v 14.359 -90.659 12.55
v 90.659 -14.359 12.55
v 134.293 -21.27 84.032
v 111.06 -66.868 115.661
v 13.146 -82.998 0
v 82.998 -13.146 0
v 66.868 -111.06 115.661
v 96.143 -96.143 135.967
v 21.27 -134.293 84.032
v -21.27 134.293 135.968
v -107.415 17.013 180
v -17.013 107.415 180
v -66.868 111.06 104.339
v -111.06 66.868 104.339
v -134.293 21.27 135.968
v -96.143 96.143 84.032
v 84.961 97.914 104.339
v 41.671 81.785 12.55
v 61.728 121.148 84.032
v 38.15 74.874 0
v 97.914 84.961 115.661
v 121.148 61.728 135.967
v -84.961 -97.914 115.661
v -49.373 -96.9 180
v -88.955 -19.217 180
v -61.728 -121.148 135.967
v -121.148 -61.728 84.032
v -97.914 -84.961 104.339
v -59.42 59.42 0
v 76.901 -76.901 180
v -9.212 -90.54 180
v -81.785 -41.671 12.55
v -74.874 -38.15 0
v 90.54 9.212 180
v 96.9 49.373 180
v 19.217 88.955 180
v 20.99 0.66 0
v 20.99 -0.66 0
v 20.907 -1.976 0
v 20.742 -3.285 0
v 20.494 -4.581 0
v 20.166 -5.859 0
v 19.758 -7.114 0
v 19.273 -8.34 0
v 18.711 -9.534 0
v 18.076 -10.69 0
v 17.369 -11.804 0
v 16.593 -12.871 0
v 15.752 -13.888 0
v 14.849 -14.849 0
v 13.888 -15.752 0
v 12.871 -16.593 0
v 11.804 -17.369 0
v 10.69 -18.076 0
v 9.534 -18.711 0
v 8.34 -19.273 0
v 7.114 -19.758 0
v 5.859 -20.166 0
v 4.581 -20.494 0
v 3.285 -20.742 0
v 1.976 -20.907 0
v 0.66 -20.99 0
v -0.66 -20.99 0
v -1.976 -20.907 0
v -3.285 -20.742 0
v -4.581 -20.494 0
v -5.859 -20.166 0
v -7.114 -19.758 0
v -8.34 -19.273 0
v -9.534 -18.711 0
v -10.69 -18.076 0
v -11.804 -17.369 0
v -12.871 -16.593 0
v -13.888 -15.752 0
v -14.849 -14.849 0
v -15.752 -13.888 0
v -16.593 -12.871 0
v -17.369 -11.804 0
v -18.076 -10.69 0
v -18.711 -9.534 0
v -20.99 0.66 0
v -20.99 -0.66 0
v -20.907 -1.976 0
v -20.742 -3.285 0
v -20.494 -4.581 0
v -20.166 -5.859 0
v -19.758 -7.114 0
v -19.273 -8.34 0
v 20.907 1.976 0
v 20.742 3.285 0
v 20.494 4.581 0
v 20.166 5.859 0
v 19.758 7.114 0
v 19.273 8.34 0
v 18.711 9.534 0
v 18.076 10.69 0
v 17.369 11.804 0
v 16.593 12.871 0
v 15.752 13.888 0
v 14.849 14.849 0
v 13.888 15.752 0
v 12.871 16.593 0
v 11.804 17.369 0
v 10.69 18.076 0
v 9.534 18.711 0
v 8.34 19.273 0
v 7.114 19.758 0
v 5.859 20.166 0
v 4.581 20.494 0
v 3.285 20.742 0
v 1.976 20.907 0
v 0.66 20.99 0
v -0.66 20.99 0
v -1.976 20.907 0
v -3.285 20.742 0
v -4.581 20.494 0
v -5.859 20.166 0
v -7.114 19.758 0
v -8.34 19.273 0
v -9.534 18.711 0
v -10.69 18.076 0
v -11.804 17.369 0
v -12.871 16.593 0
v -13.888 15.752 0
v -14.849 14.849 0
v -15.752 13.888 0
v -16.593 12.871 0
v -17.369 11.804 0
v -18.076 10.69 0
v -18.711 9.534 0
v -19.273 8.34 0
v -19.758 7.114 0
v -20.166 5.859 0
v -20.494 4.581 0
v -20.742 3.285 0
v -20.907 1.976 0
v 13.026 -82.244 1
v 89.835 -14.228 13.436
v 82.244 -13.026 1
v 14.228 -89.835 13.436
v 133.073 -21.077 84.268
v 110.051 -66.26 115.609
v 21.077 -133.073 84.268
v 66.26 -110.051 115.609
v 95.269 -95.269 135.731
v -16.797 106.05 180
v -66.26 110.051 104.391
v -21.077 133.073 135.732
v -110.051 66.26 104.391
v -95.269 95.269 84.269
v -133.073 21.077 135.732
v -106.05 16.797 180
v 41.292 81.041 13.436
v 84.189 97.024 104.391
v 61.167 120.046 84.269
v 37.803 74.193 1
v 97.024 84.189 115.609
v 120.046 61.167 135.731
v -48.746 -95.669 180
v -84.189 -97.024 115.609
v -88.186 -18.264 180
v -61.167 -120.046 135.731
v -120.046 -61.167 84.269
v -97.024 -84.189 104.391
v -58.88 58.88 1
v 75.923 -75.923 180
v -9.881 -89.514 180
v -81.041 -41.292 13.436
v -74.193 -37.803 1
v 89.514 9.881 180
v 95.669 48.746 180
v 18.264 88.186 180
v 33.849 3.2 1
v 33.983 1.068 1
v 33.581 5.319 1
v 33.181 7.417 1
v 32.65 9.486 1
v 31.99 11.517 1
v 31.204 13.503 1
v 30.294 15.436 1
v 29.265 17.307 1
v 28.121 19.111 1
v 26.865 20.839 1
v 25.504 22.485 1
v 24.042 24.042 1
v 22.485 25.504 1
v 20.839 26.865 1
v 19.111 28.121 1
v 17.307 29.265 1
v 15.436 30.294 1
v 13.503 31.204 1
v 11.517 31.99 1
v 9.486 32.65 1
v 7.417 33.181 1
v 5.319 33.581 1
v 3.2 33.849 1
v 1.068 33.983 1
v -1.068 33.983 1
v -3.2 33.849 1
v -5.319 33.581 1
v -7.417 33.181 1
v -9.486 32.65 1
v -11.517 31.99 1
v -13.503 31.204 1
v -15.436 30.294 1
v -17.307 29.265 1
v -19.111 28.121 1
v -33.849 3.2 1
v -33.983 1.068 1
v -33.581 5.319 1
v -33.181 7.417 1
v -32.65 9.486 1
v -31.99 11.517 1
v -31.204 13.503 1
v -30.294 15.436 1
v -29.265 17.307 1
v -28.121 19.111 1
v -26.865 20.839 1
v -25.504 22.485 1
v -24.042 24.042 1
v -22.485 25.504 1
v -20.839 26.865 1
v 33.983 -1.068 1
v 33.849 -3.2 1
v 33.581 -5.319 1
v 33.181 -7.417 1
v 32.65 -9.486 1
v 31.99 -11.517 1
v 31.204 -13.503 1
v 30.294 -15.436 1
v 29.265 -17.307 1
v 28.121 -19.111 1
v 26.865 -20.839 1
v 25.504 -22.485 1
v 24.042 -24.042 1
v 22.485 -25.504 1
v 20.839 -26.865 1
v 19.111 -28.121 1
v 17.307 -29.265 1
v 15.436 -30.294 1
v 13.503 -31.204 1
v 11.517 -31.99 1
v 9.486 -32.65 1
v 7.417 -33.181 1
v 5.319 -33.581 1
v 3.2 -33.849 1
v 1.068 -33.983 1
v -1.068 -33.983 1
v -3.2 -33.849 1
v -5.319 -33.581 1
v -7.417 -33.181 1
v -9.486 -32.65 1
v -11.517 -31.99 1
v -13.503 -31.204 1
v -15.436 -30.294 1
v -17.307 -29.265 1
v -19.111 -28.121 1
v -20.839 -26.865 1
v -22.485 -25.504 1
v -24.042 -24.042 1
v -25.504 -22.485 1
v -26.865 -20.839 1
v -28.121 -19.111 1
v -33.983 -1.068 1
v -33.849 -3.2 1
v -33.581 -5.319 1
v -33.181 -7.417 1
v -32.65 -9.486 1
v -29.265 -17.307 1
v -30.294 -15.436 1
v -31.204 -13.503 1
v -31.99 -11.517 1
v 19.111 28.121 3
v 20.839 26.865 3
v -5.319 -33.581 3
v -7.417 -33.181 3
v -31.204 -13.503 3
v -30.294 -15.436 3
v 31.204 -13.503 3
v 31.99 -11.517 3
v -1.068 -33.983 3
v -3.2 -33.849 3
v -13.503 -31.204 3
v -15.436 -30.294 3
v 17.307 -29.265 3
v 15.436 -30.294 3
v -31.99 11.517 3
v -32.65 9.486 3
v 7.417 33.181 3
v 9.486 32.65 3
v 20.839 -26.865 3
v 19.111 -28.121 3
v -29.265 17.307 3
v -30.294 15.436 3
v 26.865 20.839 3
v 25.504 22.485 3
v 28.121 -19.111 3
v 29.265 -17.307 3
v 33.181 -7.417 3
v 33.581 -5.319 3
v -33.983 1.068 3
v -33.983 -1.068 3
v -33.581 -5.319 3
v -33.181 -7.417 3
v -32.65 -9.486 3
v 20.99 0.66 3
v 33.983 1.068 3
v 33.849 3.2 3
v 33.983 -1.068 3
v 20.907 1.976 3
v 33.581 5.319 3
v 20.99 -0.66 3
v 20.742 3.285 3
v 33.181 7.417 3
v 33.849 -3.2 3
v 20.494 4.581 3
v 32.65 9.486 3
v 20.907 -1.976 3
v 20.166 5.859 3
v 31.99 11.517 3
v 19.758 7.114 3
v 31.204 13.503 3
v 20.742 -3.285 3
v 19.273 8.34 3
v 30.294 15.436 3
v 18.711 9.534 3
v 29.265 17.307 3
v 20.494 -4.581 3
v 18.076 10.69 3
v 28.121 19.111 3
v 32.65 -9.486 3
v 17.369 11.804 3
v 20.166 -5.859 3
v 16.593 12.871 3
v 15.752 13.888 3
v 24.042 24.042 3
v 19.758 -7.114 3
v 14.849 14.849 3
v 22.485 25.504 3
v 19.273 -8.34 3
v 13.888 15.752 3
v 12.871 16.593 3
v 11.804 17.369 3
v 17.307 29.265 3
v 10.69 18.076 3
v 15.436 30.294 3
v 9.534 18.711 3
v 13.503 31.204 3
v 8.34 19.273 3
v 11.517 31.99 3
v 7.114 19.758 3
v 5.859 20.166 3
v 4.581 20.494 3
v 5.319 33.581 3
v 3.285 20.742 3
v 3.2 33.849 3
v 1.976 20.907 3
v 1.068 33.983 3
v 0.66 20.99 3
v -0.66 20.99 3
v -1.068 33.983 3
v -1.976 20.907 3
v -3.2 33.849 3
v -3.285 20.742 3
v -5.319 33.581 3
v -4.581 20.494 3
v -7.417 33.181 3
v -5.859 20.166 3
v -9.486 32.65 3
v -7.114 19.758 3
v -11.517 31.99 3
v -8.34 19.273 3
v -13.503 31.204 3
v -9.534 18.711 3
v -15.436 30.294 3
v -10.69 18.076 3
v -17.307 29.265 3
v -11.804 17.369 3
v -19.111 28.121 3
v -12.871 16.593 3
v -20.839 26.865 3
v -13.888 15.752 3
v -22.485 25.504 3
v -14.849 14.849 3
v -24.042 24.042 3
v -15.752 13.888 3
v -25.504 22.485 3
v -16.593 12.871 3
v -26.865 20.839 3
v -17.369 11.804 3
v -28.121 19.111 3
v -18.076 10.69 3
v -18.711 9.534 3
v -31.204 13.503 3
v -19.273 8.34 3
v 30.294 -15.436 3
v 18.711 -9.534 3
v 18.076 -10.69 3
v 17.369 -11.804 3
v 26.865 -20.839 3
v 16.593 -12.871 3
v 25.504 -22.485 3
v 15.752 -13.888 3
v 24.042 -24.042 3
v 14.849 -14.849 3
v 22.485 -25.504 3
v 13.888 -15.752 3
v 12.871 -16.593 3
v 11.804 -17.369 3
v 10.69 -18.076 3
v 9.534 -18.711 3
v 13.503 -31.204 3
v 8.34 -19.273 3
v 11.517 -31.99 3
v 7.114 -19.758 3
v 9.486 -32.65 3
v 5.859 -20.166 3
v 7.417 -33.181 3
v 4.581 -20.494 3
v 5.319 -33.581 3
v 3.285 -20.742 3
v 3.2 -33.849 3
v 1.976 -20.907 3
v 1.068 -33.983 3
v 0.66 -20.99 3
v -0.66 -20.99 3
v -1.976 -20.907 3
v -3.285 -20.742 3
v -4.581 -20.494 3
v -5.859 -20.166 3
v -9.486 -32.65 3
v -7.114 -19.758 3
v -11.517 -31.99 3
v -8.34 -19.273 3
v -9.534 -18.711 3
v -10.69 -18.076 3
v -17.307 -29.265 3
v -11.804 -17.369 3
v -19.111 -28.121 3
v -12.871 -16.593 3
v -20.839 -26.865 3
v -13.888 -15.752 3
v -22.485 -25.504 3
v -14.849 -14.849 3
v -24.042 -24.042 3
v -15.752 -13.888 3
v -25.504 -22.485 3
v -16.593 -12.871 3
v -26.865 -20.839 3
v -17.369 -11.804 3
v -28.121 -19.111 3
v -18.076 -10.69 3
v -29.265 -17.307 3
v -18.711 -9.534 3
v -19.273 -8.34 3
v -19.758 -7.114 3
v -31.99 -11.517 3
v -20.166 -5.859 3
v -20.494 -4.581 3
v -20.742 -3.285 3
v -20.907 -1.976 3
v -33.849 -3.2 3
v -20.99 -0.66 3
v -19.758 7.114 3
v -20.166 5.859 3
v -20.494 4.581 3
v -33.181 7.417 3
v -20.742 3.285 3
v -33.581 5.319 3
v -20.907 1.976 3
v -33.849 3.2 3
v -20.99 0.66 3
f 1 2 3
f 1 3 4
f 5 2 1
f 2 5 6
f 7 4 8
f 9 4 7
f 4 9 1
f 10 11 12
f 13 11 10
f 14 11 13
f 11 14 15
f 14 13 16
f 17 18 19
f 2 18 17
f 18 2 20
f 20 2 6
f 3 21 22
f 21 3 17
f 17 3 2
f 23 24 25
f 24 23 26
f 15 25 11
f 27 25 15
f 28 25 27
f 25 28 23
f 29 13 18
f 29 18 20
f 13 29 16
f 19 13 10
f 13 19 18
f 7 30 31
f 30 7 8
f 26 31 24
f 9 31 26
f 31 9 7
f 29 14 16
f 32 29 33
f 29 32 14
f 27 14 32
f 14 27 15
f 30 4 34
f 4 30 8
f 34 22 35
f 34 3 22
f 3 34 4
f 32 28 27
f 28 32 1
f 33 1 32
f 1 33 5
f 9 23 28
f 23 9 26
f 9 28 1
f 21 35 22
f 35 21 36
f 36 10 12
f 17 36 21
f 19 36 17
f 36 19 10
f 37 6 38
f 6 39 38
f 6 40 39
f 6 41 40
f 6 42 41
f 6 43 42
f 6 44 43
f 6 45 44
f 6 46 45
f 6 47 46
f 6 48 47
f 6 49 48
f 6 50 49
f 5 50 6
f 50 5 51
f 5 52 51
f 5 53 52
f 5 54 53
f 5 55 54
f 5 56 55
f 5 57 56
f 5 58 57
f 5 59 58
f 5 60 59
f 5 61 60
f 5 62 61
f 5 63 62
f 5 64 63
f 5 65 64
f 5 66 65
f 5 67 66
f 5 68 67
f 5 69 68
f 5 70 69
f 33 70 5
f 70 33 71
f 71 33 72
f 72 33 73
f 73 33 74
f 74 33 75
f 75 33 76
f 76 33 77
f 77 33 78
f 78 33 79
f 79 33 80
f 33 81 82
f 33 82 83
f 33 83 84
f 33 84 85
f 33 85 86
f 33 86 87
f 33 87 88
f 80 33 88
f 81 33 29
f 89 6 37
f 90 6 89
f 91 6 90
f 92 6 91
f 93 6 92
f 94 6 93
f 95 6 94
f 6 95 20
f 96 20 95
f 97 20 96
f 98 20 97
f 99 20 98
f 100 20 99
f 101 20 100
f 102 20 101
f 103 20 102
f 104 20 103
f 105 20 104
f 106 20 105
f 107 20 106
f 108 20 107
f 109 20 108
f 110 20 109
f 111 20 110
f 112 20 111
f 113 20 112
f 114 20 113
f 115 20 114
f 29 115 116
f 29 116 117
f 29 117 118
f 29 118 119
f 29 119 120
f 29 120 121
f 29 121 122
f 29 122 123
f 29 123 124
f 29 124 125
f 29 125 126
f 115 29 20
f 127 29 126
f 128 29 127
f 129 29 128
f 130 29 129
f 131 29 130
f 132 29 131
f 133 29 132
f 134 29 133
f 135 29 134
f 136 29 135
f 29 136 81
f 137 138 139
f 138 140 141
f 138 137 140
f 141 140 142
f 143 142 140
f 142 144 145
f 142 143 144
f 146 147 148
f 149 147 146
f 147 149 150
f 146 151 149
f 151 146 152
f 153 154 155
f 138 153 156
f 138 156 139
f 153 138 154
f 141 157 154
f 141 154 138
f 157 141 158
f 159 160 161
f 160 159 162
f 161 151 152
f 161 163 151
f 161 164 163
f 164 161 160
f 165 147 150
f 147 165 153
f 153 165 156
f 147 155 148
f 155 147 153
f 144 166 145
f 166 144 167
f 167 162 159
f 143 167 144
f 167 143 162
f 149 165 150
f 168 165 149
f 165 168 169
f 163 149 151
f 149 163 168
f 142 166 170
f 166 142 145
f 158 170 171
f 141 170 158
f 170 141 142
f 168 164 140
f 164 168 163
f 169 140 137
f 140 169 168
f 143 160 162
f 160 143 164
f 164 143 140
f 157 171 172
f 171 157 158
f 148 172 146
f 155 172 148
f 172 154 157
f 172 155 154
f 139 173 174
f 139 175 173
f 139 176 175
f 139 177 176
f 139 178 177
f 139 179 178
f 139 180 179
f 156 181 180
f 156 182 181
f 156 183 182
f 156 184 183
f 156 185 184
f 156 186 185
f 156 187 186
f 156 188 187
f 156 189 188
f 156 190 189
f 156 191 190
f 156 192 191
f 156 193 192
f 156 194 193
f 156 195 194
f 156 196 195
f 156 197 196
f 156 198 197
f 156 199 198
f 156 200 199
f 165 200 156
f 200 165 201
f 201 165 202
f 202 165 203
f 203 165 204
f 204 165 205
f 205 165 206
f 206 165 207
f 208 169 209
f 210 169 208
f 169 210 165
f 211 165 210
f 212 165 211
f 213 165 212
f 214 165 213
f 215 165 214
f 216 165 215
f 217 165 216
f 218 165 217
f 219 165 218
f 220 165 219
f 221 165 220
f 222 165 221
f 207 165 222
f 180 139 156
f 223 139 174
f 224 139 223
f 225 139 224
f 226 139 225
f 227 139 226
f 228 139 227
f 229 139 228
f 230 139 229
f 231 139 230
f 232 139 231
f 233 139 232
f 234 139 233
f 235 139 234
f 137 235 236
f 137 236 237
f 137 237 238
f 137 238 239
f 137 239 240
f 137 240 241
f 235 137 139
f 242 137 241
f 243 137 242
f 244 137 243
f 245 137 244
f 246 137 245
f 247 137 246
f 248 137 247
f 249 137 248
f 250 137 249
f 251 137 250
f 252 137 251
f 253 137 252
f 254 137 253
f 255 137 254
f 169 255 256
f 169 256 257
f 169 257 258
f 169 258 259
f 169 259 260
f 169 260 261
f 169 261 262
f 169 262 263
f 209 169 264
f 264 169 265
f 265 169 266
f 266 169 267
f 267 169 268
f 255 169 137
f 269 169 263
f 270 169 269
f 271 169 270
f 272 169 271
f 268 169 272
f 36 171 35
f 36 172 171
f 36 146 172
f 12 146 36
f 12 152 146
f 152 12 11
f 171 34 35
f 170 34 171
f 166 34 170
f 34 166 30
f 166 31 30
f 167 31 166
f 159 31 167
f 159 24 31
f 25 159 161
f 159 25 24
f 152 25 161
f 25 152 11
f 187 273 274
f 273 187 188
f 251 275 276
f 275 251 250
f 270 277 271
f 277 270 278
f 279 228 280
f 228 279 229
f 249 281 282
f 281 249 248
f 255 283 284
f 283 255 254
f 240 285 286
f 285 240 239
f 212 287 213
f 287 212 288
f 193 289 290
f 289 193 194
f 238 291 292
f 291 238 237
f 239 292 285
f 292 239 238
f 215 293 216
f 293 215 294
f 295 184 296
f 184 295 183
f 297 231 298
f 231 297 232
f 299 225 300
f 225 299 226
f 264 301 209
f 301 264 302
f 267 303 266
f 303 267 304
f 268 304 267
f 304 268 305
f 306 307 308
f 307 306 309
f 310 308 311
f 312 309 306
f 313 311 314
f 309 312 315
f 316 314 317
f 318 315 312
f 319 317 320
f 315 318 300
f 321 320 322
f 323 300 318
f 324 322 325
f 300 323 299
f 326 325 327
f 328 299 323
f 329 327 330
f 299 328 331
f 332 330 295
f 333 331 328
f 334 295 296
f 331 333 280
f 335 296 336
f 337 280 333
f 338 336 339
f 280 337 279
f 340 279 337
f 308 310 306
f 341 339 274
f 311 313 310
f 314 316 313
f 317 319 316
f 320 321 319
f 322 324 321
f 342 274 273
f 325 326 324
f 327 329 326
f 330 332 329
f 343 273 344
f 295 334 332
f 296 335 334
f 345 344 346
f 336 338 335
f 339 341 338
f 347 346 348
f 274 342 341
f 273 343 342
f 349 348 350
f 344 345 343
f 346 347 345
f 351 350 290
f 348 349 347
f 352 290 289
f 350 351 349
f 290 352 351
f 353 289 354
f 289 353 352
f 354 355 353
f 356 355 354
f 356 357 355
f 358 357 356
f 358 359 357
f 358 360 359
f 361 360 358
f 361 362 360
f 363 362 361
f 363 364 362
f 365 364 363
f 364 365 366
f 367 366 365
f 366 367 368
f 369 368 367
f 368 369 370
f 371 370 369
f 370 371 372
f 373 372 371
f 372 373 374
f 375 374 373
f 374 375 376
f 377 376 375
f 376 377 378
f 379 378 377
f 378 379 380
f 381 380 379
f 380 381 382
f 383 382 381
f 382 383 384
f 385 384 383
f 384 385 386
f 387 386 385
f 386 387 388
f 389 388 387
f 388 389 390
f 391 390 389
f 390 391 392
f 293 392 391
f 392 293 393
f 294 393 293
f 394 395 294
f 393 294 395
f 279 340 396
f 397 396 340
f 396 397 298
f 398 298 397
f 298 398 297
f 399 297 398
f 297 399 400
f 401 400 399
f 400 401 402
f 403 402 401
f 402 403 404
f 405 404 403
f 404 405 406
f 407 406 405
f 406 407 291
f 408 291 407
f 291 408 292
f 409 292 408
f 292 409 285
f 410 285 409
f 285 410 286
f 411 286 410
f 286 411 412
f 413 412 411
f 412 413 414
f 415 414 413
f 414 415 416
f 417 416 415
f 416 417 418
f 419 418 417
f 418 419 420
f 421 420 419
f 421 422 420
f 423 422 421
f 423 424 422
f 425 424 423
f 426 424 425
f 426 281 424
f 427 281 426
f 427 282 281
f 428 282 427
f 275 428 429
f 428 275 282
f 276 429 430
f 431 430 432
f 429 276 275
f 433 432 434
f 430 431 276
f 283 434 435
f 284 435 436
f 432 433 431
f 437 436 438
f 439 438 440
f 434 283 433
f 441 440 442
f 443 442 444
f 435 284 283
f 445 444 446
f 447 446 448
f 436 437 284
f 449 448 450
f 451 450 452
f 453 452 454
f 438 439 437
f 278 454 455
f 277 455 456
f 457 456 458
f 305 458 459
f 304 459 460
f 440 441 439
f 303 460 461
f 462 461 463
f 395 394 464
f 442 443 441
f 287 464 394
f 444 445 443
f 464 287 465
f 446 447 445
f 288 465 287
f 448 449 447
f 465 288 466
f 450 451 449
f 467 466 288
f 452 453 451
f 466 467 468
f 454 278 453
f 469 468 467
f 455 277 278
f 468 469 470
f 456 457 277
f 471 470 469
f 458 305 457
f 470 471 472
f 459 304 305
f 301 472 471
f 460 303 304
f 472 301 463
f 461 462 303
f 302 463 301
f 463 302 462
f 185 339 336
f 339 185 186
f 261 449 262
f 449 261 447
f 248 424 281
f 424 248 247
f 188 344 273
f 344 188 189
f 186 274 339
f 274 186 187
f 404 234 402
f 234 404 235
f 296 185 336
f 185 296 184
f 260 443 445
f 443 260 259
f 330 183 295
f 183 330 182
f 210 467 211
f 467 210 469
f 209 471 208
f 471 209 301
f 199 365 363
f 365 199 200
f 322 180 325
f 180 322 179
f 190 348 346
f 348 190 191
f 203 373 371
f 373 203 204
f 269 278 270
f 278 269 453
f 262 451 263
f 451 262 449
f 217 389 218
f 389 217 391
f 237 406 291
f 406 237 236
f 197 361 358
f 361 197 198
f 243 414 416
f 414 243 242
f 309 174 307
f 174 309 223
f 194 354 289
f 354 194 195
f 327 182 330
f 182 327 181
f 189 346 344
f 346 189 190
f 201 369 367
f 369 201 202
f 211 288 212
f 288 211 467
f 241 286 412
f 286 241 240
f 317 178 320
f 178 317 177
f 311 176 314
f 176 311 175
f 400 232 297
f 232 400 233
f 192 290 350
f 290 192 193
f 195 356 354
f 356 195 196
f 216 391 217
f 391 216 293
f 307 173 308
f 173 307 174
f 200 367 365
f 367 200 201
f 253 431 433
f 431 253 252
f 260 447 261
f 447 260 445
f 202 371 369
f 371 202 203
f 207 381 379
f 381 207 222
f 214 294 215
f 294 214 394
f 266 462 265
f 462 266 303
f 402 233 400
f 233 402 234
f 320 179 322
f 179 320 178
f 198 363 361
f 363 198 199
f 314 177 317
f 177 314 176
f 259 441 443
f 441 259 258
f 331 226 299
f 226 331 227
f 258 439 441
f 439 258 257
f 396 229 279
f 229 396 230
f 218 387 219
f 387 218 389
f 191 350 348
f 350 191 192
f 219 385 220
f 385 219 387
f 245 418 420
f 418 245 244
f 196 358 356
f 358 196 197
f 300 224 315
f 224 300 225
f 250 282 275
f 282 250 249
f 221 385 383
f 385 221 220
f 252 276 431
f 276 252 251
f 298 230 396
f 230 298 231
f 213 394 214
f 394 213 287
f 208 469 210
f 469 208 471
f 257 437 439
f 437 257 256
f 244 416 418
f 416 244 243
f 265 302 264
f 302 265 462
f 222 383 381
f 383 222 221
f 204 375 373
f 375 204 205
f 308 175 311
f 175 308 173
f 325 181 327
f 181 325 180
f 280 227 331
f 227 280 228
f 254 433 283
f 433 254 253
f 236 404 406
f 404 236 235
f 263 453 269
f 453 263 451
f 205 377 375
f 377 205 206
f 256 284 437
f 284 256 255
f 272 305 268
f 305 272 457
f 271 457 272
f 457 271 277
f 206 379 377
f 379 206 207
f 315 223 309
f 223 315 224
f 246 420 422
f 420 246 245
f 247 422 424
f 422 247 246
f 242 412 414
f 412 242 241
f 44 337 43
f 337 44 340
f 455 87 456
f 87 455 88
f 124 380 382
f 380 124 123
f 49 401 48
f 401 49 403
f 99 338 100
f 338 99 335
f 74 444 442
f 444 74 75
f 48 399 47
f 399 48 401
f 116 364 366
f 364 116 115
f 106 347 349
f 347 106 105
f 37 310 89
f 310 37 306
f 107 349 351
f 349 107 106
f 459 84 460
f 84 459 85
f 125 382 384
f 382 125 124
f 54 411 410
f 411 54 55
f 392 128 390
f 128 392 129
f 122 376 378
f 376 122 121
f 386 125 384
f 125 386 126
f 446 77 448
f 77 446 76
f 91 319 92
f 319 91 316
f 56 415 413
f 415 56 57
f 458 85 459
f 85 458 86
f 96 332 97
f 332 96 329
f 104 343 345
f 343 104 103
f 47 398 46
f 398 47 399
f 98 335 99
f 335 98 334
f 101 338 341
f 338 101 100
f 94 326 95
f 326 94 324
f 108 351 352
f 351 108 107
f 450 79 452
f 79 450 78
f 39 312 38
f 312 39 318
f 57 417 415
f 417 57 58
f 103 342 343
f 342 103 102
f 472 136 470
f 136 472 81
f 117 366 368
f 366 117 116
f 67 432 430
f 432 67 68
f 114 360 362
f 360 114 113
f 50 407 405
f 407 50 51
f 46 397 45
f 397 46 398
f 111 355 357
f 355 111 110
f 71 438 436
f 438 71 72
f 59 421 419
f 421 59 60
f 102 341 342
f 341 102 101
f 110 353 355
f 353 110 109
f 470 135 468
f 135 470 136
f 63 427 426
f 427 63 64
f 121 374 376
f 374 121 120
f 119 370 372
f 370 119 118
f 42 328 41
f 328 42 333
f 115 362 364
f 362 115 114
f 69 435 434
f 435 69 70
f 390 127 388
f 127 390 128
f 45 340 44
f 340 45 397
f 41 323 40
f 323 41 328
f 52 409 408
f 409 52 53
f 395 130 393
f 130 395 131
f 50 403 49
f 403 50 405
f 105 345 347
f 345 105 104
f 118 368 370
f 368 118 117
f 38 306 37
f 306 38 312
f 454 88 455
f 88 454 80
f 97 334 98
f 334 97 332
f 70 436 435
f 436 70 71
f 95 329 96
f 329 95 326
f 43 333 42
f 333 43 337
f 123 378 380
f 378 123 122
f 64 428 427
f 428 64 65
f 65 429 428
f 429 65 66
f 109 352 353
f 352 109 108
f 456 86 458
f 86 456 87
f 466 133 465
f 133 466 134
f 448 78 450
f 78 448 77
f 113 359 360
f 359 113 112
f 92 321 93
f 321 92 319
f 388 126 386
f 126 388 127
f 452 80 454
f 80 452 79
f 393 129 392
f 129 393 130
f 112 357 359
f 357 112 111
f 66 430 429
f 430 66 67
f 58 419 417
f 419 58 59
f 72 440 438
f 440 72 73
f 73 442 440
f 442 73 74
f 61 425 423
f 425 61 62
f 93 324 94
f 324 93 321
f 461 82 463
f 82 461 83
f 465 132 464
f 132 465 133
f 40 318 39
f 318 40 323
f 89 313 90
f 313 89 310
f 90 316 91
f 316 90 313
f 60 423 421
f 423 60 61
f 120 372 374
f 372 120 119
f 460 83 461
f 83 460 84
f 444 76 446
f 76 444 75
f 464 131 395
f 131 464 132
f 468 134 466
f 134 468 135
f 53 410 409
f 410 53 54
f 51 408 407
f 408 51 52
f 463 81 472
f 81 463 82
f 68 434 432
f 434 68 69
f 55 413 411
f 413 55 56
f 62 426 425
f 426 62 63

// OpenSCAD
/*
 * Customizable Lamp Shade - https://www.thingiverse.com/thing:2372190
 * by Dennis Hofmann - https://www.thingiverse.com/mightynozzle/about
 * created 2017-06-08
 * version v1.0
 *
 * This work is licensed under the Creative Commons - Attribution - Non-Commercial license.
 * https://creativecommons.org/licenses/by-nc/3.0/
*/


 // Parameter Section//
//------------------//

// choose the shape of the lamp shade
lamp_shape = "dodecahedron"; //[simple,sphere,flower,dodecahedron]

// [Simple, sphere and flower shape] Resolution of round shapes. You can also use this value as the number of edges of the simple shade. If you want a cube or a pyramide, set the value of 4. If you want a cylinder or a cone, set the value of 100-255. Create a star shape with the flower shape with resolution of 3-5. Minimum value for a sphere shape is 7. You can use a low resolution (e.g. 16-32) to create a low polygon style. You can create some interesting shapes with this parameter. Just try some different values!
resolution = 64; //[3:255]

// Thinner for more translucency, thicker for more stable lamp shade. Default: 1.0
shell_thickness_in_millimeter = 1.0;

// [All lamp shapes] Set the diameter of the base of the lamp shade. The base is the position, where the bulb fitting is located. This parameter is used for all lamp shapes.
lamp_shade_base_diameter_in_millimeter = 220.0; //[1:300]

// [Simple and flower shape] Set the diameter of the head of the lamp shade. The head is the top position of the lamp shade. If this value is higher or lower than the base diameter, you get a cone or pyramide. Lower value can be used for desk lamp, higher value can be used for ceiling lamp. This parameter is used for simple and flower shape.
lamp_shade_head_diameter_in_millimeter = 10.0; //[1:300]

// [Simple and flower shape] Set the height of the lamp shade. This parameter is used for simple and flower shape
lamp_shade_height_in_millimeter = 110.0; //[1:300]

// [Sphere and dodecahedron shape] Set the cut height of the head of the shape. 0 means a closed top. It is like sclicing the top of an apple with a knife. This parameter is used for sphere and dodecahedron shape.
head_cut_height_in_millimeter = 40.0; //[0:200]

// [Sphere shape only] Set the cut height from the base of the shape. It is like sclicing the bottom of an apple with a knife. This parameter is used for sphere and dodecahedron shape.
base_cut_height_in_millimeter = 10.0;  //[0:200]

// [Flower shape only] This parameter only is used for flower shape
number_of_flower_leaves = 8; //[2:64]

// Set the diameter of the bulb bracket you want to use. Add a little extra for tolerance like 2mm if you are using a outside threaded bracket + nut/ring. If you are using a threadless bracket, it depends on the material. If it is a silicone one, you can use a little smaller hole. If it is non elastic plastic, this could be a challenge. If it is to loose, you can try to glue the gap between bracket and the lamp shade. Or do some test prints of the first 5-10 layers, before printing the whole lamp shade. Use 0, if you don't need a hole.
bulb_bracket_diameter_in_millimeter = 42.0;

// This is the additional support height for the bulb bracket. Depending on the bulb bracket you are using, this extra makes the hole more stable.
bulb_bracket_support_height_in_millimeter = 2.0;

// This is the additional support width for the bulb bracket. Depending on the bulb bracket you are using, this extra makes the hole more stable.
bulb_bracket_support_width_in_millimeter = 13.0;

/* [Hidden] */
shape_height = lamp_shade_height_in_millimeter;
base_cut = base_cut_height_in_millimeter;
head_cut = head_cut_height_in_millimeter;
shell = shell_thickness_in_millimeter;
flower_leaves = number_of_flower_leaves;
bulb_bracket_d = bulb_bracket_diameter_in_millimeter;
bulb_bracket_support_w = bulb_bracket_support_width_in_millimeter;
bulb_bracket_support_h = bulb_bracket_support_height_in_millimeter;
shape_base_outside = lamp_shade_base_diameter_in_millimeter;
shape_head_outside = lamp_shade_head_diameter_in_millimeter;

shape_base_inside = shape_base_outside - shell * 2;
shape_head_inside = shape_head_outside - shell * 2;
$fn=resolution;


 // Program Section//
//-----------------//

color("DeepSkyBlue") rotate([0,0,45]) {
        difference() {
                union() {
                        // Shape part
                        if(lamp_shape == "simple") simple_shape();
                        if(lamp_shape == "sphere") sphere_shape();
                        if(lamp_shape == "flower") flower_shape();
                        if(lamp_shape == "dodecahedron") dodecahedron_shape();
                        
                        // Bulb bracket support
                        cylinder(d = bulb_bracket_d + bulb_bracket_support_w * 2, h = bulb_bracket_support_h + shell, $fn=100);
                }
                
                // Bottom bulb bracket hole
                translate([0,0,- 0.1]) {
                        cylinder(d = bulb_bracket_d, h = shell + bulb_bracket_support_h + 0.2, $fn=100);
                }

        }
}


 // Module Section//
//---------------//

module simple_shape() {
        difference() {
                cylinder(d1 = shape_base_outside, d2 = shape_head_outside, h = shape_height);
                translate([0, 0, shell]) {
                        cylinder(d1 = shape_base_inside, d2 = shape_head_inside, h = shape_height);
                }
        }
}

module sphere_shape() {
        translate([0, 0, shape_base_outside / 2 - base_cut]) {
                difference() {
                        base_cut_sphere(shape_base_outside, base_cut);
                        translate([0, 0, shell / 2]) {
                                base_cut_sphere(shape_base_inside, base_cut);
                        }
                        // Head Cut
                        translate([0, 0, shape_base_outside / 2 - head_cut]) {
                                cylinder(d = shape_base_outside * 2, h = head_cut);
                        }
                }
        }
}

module flower_shape() {
        difference() {
                flower(shape_base_outside, shape_head_outside);
                translate([0, 0, shell]) {
                        flower(shape_base_inside, shape_head_inside);
                }
        }
}

module dodecahedron_shape() {
        translate([0, 0, shape_base_outside / 2]) {
                difference() {
                    dodecahedron(shape_base_outside);
                    dodecahedron(shape_base_inside);
                           // Head Cut
                                translate([0, 0, shape_base_outside / 2 - head_cut]) {
                                        cylinder(d = shape_base_outside * 2, h = head_cut + 0.1);
                        }
            }
        }
}

module base_cut_sphere(size, base) {
        difference() {
                sphere(d = size);
                // Base Cut
                translate([0, 0, - size / 2]) {
                        cylinder(d = size * 2, h = base);
                }
        }
}

module dodecahedron(size) {
        scale([size, size, size]) {
        intersection() {
            cube([2, 2, 1], center = true);
            intersection_for(i = [0:4]) {
                rotate([0, 0, 72 * i]) {
                        rotate([116.565, 0, 0]) {
                        cube([2, 2, 1], center = true);
                    }
                }
            }
        }
    }
}

module flower(size1, size2) {
        leaf_diameter1 = size1 * 3 / flower_leaves;
        leaf_diameter2 = size2 * 3 / flower_leaves;
        
        difference() {
                union() {
                        cylinder(d1 = size1 - leaf_diameter1,, d2 = size2 - leaf_diameter2, h = shape_height, $fn=100);
                        for(leaf = [0:flower_leaves]) {
                                rotate([0, 0, 360 / flower_leaves * leaf]) {
                                        hull() {
                                                translate([(size1 - leaf_diameter1) / 2, 0, 0]) {
                                                        cylinder(d = leaf_diameter1, h = 0.1);
                                                }
                                                translate([(size2 - leaf_diameter2) / 2, 0, shape_height]) {
                                                        cylinder(d = leaf_diameter2, h = 0.1);
                                                }
                                        }
                                }        
                        }
                }
                translate([0, 0, shape_height]) {
                        cylinder(d = size2 + 1, h = 0.2);
                }
        }
}
